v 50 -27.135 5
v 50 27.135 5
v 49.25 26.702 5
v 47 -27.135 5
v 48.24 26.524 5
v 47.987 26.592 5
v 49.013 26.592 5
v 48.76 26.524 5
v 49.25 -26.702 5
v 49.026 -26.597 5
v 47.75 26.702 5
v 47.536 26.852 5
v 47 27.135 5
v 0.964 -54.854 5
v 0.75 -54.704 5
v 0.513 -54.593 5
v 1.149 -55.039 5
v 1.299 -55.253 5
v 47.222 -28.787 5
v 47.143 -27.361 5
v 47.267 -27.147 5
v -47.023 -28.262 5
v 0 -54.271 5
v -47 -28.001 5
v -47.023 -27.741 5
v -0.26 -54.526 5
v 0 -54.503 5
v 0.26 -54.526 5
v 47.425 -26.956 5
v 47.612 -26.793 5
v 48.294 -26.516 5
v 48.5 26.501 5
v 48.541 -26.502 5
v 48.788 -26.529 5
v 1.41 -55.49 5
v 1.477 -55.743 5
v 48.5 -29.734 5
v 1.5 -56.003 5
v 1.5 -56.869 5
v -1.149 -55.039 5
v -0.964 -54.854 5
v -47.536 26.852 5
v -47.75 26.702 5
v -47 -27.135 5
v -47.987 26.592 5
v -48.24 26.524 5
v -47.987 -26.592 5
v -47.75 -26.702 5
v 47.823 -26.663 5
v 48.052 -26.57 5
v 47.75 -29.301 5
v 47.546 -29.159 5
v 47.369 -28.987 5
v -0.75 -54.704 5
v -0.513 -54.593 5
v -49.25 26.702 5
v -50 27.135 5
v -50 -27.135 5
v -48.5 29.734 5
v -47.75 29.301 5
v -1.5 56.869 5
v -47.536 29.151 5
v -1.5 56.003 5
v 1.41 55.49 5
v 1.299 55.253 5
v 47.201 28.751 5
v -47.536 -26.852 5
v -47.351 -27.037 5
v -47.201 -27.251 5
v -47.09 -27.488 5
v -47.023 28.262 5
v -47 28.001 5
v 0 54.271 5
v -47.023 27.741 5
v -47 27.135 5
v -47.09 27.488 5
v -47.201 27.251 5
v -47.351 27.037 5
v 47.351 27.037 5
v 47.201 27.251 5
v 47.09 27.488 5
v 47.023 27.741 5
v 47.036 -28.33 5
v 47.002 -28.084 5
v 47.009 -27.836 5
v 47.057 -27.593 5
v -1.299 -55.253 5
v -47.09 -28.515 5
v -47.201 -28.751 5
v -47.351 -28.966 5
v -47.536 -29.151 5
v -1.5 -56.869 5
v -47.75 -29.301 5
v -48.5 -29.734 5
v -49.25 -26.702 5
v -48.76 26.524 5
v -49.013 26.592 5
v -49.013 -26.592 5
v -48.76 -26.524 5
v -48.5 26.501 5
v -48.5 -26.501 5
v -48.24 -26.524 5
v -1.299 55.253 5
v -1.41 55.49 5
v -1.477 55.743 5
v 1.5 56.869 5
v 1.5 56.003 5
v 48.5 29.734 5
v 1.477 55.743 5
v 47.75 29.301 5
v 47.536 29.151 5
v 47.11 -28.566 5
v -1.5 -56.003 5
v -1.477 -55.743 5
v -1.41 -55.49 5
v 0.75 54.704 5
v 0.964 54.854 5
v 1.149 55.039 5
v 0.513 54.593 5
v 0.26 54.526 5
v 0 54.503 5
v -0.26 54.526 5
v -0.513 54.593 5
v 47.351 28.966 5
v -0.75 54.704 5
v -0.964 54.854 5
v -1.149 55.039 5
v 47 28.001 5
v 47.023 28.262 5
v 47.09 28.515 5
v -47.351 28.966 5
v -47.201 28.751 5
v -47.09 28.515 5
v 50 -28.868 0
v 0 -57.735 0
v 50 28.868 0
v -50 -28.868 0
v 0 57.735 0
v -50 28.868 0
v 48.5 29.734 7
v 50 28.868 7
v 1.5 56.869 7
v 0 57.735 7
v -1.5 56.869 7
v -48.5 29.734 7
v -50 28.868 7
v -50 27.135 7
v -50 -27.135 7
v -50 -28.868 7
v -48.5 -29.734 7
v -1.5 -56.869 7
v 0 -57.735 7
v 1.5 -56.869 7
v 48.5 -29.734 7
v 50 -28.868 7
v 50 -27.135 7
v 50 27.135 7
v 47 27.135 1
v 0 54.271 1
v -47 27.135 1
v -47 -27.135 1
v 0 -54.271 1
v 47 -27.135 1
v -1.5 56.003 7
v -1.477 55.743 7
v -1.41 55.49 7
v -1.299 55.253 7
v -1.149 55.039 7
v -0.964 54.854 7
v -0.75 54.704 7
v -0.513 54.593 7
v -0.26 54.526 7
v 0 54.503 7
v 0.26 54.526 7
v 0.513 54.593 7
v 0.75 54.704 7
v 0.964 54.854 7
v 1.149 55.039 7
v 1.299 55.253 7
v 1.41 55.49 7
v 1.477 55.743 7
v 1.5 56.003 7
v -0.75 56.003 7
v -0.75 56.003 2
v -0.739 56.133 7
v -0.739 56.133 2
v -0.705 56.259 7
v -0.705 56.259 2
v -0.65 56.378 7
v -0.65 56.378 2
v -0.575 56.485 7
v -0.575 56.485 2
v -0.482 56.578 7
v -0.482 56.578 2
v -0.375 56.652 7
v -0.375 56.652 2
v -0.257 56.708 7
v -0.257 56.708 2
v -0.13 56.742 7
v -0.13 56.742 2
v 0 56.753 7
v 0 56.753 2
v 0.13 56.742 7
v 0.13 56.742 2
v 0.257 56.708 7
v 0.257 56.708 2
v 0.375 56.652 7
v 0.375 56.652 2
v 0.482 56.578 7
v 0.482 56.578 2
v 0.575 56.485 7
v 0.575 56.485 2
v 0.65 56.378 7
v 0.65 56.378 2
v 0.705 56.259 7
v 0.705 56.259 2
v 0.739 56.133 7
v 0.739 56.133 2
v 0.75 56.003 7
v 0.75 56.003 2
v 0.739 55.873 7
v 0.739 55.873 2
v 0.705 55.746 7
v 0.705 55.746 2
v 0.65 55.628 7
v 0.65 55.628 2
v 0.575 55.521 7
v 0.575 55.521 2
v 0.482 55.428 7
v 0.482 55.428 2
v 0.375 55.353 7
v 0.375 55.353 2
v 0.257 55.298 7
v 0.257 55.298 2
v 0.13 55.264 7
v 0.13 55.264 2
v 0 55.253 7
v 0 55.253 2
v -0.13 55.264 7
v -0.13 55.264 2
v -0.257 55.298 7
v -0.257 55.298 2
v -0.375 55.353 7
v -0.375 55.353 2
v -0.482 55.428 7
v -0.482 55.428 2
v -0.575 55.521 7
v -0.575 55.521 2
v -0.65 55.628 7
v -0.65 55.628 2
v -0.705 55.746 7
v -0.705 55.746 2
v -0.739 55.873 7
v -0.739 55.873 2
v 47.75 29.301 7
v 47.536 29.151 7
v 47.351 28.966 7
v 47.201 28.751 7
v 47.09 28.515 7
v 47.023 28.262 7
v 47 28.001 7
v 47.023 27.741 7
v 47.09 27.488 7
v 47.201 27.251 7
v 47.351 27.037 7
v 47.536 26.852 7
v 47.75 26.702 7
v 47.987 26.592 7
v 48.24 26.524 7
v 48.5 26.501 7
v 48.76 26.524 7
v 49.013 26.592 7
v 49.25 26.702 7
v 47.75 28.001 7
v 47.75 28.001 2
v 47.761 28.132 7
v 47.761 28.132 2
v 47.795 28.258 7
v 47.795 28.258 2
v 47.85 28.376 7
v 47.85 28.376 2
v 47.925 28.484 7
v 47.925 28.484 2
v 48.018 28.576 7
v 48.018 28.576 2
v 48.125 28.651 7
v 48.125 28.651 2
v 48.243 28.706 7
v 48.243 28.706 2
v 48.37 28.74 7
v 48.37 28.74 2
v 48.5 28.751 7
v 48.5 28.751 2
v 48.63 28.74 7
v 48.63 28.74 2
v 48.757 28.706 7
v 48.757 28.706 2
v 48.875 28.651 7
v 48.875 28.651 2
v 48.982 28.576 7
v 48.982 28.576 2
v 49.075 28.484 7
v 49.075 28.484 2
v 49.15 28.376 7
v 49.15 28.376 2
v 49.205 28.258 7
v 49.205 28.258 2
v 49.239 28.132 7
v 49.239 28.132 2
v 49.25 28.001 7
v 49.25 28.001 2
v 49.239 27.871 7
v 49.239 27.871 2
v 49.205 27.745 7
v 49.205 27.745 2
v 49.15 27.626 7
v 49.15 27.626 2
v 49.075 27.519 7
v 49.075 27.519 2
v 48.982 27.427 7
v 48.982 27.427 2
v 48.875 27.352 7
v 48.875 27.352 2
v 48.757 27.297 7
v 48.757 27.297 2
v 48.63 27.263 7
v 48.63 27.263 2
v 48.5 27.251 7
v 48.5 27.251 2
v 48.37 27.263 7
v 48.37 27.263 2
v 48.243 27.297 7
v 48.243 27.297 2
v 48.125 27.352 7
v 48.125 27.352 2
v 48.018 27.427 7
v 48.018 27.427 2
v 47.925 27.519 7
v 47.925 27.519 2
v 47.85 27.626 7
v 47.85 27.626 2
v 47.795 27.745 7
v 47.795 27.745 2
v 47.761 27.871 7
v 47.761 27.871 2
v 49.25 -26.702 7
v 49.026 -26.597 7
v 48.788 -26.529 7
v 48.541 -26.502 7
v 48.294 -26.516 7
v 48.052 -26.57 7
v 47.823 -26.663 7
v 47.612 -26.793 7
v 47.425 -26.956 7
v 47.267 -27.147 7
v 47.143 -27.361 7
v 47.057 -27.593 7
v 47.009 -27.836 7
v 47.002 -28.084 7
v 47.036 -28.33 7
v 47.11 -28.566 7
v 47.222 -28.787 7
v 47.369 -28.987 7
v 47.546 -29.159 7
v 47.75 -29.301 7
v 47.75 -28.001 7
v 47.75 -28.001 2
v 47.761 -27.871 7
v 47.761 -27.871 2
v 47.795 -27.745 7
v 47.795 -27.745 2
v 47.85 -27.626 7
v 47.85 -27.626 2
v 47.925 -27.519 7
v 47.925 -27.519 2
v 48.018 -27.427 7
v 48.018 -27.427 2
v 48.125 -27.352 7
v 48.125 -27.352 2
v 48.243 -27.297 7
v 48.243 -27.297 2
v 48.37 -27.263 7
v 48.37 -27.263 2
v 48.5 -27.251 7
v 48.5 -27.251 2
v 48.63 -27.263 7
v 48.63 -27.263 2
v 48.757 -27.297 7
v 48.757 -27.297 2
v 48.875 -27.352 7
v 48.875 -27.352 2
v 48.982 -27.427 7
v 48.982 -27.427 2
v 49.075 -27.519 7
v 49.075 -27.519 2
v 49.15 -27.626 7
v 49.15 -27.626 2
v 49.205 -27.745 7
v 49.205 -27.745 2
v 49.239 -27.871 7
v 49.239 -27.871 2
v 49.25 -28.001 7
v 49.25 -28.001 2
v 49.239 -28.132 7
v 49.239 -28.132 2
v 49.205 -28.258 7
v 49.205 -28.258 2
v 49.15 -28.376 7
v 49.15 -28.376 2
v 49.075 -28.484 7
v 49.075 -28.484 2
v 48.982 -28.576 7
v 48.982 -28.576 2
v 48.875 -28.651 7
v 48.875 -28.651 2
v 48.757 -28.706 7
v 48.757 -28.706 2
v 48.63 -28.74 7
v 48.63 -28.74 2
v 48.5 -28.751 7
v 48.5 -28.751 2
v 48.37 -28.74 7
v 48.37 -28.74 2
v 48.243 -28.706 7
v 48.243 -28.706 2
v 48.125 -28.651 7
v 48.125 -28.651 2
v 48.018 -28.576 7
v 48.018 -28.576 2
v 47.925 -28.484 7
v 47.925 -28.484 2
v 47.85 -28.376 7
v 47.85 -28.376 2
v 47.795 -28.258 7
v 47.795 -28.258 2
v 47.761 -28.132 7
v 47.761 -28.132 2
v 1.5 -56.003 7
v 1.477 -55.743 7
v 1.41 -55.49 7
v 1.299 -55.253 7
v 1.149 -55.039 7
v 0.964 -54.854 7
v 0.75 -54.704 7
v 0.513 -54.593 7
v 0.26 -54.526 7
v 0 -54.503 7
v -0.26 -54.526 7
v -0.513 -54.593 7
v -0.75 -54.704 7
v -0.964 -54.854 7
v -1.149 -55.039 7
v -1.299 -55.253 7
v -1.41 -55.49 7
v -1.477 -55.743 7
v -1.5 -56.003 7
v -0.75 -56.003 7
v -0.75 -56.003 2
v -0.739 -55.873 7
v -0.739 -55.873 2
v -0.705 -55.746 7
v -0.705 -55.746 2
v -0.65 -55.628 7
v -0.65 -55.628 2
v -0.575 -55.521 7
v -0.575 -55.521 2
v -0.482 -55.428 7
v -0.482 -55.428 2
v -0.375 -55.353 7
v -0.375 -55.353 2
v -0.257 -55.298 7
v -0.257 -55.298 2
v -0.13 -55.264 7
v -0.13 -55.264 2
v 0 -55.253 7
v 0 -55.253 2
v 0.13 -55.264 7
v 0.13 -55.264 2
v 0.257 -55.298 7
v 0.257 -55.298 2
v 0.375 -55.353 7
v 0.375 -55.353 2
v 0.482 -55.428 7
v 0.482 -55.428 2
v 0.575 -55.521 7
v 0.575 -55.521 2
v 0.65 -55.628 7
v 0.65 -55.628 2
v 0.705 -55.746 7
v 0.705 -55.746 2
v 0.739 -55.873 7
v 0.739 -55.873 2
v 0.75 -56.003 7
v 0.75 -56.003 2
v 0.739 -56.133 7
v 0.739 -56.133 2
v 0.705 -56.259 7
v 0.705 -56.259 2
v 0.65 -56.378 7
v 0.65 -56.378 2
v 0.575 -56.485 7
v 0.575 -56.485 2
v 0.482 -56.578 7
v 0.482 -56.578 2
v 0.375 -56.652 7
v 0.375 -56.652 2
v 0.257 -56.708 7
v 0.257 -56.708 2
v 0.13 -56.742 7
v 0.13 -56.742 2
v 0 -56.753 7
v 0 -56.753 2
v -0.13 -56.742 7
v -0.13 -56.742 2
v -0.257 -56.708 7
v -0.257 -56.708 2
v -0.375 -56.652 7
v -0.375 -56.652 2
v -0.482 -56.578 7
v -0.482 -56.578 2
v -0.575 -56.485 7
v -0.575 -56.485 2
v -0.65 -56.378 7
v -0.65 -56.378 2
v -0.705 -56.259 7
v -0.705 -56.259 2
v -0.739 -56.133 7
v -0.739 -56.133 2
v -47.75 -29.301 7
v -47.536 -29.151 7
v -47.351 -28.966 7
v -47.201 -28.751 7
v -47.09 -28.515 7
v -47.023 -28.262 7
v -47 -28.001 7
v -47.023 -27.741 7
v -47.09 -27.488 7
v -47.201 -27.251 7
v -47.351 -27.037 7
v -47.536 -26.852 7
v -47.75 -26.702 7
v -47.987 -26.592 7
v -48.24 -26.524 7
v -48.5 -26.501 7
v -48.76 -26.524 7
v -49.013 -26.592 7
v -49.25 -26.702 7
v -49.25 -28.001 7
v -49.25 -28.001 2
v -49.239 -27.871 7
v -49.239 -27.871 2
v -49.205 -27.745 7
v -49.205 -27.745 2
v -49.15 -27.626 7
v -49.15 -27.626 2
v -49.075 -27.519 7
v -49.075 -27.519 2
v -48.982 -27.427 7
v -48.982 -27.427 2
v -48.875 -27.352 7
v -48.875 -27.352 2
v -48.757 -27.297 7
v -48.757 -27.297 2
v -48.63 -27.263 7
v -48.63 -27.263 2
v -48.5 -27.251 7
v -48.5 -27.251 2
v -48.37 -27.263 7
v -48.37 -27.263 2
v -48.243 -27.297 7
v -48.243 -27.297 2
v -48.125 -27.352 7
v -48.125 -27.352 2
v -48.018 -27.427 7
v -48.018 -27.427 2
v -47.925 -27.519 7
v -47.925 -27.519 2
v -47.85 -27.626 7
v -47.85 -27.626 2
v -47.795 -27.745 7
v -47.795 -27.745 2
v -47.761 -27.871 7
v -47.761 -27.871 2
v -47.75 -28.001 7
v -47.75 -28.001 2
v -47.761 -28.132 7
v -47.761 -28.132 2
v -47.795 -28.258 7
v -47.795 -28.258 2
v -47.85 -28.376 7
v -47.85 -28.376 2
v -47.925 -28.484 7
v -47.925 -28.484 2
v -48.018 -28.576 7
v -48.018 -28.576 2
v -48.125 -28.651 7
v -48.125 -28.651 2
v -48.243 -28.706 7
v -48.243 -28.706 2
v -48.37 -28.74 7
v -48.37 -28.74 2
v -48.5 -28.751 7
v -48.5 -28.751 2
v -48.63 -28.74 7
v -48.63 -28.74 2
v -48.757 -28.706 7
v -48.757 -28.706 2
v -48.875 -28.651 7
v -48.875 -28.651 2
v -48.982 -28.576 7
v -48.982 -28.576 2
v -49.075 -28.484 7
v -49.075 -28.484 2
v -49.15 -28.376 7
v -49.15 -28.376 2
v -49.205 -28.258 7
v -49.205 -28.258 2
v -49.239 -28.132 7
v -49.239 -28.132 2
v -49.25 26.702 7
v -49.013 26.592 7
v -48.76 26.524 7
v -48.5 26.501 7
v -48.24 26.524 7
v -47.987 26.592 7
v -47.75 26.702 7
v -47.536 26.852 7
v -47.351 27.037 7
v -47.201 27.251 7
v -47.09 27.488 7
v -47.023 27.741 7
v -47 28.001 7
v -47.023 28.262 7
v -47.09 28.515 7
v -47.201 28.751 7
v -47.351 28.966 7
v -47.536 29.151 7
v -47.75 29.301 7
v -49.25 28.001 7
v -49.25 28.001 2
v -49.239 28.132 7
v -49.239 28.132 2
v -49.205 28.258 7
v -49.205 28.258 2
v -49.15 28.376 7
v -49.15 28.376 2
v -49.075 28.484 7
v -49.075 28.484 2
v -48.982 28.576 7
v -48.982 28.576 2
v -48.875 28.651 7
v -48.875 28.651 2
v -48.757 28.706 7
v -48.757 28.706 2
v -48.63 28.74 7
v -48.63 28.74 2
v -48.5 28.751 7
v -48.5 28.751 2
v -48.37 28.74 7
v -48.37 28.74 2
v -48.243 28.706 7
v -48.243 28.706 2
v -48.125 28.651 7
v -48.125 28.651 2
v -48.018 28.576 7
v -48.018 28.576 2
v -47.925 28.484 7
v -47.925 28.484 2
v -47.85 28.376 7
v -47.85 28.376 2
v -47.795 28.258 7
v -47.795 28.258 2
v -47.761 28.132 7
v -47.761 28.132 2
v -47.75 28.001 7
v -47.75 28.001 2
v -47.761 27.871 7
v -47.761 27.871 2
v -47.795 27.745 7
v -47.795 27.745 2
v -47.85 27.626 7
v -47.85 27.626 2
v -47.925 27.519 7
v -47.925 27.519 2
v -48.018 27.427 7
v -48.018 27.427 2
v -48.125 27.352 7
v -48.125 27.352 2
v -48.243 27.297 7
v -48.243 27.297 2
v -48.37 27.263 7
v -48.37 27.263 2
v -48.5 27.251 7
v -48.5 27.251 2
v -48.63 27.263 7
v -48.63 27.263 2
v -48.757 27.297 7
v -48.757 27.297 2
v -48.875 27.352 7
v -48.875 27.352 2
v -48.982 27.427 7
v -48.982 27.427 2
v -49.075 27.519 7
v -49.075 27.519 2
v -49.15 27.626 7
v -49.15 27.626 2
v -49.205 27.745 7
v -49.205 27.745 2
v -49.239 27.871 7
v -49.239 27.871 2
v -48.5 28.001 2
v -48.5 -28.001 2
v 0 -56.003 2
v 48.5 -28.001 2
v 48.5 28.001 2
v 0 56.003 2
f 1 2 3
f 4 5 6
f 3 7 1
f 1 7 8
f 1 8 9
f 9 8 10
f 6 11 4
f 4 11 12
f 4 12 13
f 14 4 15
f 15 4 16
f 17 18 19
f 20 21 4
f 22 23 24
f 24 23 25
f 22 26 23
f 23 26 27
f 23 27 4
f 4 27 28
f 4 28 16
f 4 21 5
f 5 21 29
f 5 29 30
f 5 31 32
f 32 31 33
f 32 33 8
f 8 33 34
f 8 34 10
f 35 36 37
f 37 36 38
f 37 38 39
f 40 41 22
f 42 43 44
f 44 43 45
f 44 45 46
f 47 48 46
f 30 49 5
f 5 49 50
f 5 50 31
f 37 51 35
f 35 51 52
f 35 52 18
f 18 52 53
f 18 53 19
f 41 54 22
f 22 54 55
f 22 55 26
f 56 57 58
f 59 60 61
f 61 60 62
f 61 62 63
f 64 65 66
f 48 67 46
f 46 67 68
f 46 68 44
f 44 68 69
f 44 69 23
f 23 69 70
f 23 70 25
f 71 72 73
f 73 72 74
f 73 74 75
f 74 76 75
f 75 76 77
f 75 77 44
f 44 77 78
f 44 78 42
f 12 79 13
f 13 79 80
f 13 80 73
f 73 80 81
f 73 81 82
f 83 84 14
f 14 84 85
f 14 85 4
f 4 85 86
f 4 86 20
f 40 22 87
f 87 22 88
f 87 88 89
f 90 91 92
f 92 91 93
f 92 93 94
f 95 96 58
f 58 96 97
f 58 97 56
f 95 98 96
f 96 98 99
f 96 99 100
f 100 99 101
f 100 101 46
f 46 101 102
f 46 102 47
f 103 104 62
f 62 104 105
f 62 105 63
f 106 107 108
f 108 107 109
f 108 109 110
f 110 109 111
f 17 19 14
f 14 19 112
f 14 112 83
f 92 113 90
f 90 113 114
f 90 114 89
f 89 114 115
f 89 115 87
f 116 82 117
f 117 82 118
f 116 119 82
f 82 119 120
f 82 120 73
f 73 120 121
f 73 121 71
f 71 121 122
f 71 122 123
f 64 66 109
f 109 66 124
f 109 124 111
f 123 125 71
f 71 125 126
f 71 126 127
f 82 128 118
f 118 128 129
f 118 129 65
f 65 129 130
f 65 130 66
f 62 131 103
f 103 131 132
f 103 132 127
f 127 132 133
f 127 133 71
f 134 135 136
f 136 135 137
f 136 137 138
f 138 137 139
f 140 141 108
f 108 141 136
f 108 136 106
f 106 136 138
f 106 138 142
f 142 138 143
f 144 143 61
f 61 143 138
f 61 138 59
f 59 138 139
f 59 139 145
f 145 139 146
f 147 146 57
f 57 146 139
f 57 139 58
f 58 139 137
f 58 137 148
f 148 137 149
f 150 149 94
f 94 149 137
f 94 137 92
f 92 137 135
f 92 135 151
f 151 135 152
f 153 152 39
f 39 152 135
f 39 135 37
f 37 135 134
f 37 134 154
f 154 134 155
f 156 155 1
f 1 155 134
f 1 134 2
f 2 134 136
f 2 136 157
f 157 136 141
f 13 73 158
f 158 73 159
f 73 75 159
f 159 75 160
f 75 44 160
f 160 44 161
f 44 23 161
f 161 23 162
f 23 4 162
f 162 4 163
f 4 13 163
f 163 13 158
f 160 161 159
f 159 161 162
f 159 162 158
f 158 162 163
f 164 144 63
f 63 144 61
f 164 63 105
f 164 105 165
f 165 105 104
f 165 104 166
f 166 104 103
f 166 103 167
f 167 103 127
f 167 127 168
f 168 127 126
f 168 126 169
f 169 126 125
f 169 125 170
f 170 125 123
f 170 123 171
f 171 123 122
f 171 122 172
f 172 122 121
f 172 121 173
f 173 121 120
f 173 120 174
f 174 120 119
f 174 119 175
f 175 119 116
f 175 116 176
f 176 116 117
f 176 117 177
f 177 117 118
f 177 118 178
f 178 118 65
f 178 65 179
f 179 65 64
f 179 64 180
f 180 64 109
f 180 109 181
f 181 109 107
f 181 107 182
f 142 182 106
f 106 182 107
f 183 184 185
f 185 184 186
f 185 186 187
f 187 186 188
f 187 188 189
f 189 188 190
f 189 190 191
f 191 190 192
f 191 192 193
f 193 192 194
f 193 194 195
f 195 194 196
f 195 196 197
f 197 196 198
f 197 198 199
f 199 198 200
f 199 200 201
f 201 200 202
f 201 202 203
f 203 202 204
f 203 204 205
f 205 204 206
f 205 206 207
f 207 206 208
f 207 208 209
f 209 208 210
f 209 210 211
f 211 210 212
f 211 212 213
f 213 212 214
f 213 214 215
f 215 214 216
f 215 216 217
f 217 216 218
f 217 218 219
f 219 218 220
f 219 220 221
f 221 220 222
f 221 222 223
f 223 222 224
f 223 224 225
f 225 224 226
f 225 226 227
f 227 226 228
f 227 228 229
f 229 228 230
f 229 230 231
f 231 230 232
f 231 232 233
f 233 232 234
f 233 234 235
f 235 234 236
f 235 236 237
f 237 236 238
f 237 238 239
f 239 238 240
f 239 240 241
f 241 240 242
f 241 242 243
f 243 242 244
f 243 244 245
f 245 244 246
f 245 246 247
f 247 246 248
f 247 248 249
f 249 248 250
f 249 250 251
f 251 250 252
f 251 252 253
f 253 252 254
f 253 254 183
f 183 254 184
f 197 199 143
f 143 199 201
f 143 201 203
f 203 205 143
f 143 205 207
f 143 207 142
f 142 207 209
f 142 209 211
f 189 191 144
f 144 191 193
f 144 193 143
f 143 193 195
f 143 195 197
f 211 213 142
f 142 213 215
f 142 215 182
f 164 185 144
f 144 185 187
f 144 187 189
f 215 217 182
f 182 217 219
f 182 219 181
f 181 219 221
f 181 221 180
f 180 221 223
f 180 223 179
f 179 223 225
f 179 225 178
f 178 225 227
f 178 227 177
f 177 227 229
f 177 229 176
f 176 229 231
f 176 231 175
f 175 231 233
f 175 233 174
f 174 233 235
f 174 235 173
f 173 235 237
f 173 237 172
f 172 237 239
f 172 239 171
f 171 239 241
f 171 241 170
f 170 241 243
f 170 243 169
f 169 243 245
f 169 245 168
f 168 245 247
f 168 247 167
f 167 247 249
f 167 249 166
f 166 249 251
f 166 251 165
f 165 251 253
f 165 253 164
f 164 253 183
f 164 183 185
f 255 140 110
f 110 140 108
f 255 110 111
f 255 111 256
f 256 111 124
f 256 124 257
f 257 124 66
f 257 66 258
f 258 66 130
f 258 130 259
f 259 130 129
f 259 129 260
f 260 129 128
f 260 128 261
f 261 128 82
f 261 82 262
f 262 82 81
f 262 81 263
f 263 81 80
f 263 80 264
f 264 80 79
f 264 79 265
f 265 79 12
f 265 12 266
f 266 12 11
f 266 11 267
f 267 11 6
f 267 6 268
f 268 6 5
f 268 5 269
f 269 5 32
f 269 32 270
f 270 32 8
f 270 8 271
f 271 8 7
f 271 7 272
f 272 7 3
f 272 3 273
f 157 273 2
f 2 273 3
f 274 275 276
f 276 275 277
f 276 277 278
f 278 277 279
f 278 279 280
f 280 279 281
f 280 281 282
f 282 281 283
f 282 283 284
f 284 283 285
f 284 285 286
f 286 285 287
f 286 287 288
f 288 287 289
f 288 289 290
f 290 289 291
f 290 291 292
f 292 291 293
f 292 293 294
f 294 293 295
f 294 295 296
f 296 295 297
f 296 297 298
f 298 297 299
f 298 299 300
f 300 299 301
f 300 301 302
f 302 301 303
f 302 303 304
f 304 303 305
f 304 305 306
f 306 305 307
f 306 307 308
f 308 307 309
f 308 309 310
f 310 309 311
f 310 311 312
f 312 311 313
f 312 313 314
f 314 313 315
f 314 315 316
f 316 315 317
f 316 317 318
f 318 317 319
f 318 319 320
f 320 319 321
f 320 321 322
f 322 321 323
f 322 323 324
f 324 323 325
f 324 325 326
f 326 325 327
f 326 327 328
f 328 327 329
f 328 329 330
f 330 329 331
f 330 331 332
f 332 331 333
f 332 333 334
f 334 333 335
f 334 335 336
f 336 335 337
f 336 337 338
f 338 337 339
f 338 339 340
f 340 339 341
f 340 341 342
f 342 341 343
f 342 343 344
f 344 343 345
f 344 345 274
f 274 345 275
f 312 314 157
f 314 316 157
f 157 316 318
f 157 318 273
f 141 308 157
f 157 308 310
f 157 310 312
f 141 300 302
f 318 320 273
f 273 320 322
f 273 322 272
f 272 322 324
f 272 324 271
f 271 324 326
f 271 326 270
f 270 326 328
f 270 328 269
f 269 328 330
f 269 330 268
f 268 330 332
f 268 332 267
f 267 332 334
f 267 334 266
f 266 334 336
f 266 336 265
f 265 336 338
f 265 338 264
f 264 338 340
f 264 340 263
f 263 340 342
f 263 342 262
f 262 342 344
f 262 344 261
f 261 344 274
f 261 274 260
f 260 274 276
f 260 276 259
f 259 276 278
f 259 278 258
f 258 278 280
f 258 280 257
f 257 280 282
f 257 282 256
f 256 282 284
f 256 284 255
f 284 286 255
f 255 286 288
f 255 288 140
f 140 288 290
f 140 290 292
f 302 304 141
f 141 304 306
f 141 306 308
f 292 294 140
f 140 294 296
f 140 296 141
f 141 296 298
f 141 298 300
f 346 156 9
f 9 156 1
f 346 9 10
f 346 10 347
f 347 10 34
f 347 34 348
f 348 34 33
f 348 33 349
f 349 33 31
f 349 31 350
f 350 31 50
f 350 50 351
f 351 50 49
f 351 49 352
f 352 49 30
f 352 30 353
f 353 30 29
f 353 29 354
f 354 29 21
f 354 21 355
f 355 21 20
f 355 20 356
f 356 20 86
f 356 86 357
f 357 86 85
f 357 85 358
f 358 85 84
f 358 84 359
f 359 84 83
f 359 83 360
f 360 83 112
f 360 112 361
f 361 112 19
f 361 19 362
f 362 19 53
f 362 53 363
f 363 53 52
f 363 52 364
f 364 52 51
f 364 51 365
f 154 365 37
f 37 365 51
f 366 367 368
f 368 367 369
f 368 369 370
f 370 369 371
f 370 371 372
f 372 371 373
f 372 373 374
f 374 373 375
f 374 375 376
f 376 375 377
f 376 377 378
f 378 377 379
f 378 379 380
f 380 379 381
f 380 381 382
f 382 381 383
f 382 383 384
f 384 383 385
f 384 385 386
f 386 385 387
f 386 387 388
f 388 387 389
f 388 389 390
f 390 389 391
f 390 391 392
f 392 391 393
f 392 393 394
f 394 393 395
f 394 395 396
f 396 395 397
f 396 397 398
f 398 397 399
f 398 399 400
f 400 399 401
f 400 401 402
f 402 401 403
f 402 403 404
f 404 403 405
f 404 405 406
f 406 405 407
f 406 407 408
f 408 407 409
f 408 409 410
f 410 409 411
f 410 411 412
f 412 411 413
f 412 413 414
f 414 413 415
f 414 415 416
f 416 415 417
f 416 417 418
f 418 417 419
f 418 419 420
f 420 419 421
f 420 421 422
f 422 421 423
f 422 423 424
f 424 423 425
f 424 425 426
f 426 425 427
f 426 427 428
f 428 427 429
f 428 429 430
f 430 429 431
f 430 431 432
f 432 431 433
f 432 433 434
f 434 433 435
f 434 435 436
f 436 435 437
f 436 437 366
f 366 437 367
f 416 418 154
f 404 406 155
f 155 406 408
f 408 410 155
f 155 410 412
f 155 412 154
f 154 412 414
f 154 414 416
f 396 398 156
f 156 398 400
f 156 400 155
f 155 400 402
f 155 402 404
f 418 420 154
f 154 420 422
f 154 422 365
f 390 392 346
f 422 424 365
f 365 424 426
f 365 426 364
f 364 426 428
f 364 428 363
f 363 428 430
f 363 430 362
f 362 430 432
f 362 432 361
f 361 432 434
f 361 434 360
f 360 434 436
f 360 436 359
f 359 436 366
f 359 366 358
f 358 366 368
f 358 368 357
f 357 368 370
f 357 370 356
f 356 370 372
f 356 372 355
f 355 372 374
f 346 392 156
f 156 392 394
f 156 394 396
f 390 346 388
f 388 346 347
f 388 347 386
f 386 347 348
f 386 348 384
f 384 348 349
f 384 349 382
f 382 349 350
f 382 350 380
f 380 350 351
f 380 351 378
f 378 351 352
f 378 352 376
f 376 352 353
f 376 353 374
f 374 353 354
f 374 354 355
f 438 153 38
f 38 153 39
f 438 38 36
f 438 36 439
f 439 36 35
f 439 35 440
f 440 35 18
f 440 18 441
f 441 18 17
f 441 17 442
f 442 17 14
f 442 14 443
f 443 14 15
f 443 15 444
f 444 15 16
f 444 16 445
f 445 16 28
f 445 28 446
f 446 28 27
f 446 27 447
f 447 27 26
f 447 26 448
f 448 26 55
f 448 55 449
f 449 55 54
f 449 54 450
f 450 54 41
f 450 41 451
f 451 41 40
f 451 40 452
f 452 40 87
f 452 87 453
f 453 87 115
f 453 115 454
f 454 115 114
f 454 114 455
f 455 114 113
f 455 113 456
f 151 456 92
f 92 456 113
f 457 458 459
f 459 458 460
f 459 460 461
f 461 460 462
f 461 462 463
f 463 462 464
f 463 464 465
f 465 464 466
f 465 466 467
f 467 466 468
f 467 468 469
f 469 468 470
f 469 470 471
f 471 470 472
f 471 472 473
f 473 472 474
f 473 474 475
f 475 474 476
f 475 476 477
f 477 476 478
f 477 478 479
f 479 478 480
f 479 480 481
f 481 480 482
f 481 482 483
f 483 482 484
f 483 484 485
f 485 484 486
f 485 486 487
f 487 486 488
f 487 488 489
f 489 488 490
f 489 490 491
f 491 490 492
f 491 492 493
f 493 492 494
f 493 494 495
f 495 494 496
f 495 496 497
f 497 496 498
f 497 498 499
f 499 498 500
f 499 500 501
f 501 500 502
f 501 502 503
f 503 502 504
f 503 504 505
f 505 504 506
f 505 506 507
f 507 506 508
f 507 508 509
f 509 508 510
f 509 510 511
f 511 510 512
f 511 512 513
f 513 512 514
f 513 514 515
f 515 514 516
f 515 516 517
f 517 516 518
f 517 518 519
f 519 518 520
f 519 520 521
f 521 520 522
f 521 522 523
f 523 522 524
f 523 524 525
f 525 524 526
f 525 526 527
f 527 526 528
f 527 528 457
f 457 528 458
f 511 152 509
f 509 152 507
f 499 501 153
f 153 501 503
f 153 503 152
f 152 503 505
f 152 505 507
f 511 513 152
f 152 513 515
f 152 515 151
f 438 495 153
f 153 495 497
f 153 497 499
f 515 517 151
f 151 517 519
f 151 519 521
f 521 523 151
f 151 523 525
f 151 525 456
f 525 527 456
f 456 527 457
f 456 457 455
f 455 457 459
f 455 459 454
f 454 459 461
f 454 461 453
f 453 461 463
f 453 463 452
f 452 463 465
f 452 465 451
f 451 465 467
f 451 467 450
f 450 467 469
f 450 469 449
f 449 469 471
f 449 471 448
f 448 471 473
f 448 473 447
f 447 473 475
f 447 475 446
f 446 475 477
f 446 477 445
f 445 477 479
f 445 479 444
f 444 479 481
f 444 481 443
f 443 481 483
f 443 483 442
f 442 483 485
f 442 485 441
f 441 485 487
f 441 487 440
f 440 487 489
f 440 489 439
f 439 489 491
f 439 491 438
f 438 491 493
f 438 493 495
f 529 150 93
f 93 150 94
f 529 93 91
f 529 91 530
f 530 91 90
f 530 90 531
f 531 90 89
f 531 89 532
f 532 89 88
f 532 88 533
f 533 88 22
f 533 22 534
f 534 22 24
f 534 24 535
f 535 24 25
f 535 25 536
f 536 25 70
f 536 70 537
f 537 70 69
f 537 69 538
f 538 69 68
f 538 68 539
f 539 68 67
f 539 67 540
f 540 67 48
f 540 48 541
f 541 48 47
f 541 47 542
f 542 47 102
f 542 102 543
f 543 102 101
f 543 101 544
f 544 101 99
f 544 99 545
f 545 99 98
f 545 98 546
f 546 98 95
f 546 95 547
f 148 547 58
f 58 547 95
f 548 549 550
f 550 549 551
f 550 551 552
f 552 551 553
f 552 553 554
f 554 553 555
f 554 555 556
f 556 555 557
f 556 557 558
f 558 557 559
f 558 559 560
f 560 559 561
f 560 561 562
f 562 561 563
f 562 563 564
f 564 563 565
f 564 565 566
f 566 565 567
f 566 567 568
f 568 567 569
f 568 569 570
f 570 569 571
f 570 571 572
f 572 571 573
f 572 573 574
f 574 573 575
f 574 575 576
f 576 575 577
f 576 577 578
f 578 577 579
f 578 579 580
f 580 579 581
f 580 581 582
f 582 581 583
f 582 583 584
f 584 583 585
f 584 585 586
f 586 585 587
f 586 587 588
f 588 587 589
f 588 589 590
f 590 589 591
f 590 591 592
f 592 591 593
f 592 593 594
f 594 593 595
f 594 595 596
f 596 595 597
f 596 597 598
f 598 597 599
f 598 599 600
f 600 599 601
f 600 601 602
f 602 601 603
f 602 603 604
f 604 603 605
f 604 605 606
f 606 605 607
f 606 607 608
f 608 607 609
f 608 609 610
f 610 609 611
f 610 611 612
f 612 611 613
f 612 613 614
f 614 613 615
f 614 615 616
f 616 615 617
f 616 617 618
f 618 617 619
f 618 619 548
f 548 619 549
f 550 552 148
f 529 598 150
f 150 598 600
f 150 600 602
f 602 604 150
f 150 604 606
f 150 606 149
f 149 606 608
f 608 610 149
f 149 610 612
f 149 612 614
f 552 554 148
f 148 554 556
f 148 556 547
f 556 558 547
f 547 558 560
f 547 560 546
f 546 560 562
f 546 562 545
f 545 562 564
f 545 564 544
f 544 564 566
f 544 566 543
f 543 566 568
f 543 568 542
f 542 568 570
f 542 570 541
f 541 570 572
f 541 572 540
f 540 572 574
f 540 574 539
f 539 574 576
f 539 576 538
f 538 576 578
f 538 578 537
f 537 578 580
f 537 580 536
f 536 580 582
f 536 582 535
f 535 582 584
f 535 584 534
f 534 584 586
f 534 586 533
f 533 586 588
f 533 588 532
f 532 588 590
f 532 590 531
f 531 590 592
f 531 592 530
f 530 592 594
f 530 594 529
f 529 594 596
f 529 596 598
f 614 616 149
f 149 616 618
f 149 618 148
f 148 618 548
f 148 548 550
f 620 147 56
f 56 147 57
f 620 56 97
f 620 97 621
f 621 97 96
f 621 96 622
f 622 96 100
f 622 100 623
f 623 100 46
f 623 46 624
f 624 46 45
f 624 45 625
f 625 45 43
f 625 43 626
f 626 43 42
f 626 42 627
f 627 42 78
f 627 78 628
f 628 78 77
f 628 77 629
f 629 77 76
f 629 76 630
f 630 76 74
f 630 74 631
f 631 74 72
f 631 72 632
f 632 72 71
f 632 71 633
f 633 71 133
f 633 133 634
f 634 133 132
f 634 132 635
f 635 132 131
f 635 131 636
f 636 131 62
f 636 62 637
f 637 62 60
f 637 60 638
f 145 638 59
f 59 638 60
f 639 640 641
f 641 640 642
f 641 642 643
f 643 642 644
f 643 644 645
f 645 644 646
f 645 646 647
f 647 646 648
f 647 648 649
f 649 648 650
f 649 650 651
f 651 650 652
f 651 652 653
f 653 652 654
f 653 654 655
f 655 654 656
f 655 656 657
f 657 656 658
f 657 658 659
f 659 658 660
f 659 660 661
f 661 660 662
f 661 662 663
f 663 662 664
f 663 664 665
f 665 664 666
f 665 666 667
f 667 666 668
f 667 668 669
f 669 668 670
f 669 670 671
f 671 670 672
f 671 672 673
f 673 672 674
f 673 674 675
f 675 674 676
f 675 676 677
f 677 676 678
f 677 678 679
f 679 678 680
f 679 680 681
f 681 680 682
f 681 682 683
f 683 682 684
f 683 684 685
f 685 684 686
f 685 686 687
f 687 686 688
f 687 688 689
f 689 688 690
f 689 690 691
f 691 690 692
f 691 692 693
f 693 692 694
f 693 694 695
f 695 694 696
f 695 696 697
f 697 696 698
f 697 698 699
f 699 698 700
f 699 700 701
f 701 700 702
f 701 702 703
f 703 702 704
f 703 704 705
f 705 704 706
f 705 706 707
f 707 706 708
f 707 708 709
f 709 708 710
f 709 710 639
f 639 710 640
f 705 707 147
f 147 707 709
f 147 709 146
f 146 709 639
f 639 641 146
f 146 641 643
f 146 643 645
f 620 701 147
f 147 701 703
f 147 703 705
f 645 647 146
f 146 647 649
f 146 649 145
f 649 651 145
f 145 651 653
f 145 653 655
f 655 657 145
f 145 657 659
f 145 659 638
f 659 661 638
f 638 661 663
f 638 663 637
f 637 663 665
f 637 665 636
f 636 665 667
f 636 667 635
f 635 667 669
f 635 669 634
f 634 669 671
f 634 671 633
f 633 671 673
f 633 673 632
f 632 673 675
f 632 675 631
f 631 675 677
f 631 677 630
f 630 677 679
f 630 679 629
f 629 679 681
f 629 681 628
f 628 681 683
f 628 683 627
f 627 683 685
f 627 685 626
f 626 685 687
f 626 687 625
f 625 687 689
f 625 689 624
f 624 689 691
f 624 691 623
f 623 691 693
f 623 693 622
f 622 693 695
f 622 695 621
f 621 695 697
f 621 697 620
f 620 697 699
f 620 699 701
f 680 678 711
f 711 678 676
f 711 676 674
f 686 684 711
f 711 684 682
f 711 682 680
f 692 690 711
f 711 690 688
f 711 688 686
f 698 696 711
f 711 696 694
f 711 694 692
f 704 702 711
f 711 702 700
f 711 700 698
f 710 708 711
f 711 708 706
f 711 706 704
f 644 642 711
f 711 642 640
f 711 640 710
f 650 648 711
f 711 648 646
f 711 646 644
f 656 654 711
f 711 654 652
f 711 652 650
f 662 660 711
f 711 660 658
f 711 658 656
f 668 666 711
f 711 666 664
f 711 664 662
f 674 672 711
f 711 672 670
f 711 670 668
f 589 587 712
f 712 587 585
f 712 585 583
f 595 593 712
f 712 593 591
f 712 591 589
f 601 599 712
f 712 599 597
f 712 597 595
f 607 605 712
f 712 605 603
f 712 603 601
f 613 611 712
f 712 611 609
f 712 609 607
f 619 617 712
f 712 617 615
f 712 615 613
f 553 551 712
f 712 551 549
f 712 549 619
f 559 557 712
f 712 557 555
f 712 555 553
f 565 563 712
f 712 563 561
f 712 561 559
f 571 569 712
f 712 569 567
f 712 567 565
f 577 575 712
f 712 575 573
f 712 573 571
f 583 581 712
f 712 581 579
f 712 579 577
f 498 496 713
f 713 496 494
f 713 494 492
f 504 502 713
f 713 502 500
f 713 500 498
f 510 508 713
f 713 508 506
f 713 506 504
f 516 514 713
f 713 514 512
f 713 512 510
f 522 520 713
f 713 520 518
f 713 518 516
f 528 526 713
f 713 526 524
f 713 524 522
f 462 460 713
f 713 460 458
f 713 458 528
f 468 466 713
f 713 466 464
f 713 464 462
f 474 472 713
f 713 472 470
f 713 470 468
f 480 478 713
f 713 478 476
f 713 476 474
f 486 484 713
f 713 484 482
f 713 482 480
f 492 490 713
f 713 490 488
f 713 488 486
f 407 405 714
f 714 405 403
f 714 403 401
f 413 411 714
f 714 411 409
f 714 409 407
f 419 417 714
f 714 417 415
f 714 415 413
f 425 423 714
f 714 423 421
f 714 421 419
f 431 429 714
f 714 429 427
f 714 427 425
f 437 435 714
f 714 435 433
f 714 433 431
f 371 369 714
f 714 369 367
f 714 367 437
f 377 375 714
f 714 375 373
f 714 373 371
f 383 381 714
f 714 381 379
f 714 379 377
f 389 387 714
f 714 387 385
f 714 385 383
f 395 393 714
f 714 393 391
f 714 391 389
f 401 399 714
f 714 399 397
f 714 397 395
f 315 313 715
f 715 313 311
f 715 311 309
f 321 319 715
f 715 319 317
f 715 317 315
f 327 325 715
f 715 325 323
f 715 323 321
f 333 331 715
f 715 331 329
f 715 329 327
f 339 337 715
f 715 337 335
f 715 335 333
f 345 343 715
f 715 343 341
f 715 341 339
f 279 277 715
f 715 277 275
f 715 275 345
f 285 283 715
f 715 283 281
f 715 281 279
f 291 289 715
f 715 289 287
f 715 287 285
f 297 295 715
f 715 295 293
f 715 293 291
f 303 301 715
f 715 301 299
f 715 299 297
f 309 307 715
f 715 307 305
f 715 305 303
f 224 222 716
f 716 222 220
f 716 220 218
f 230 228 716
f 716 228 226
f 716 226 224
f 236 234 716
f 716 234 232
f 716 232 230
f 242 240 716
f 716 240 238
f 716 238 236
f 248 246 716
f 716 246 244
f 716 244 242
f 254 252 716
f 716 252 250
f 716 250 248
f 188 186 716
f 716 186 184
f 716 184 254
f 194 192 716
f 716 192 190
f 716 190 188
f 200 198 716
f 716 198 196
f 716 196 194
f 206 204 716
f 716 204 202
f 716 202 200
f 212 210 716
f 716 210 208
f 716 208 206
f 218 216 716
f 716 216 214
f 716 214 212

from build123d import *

# Parameters (mm, degrees)
BOSS_EXTRUDE1_DEPTH = 5
BOSS_EXTRUDE2_DEPTH = 1
SKETCH3_R           = 0.75
BOSS_EXTRUDE3_DEPTH = 2
CUT_EXTRUDE1_START  = -3
SKETCH4_R           = 0.75
CUT_EXTRUDE1_DEPTH  = 3


with BuildPart() as part:
    # Sketch1 → Boss-Extrude1 (new body)
    with BuildSketch(Plane.XY):
        Polygon((0, 57.735026919), (-50, 28.867513459), (-50, -28.867513459), (0, -57.735026919), (50, -28.867513459), (50, 28.867513459), align=None)
        Polygon((0, 54.270925304), (-47, 27.135462652), (-47, -27.135462652), (0, -54.270925304), (47, -27.135462652), (47, 27.135462652), align=None, mode=Mode.SUBTRACT)
    extrude(amount=BOSS_EXTRUDE1_DEPTH)

    # Sketch2 → Boss-Extrude2 (add)
    with BuildSketch(Plane(origin=(0, 0, 0), x_dir=(-1, 0, 0), z_dir=(0, 0, -1))):
        Polygon((-47, -27.135462652), (-47, 27.135462652), (0, 54.270925304), (47, 27.135462652), (47, -27.135462652), (0, -54.270925304), align=None)
    extrude(amount=-BOSS_EXTRUDE2_DEPTH)

    # Sketch3 → Boss-Extrude3 (add)
    # profile 1 of 6: a face of its own
    with BuildSketch(Plane.XY.offset(5)):
        with BuildLine():
            Line((1.5, 56.002976111), (1.5, 56.869001515))
            Line((1.5, 56.869001515), (0, 57.735026919))
            Line((0, 57.735026919), (-1.5, 56.869001515))
            Line((-1.5, 56.869001515), (-1.5, 56.002976111))
            ThreePointArc((-1.5, 56.002976111), (0, 54.502976111), (1.5, 56.002976111))
        make_face()
        with Locations((0, 56.002976111)):
            Circle(SKETCH3_R, mode=Mode.SUBTRACT)
    # profile 2 of 6: a face of its own
    with BuildSketch(Plane.XY.offset(5)):
        with BuildLine():
            Line((50, 27.135462652), (50, 28.867513459))
            Line((50, 28.867513459), (48.5, 29.733538863))
            Line((48.5, 29.733538863), (47.75, 29.300526161))
            ThreePointArc((47.75, 29.300526161), (47.200961894, 27.251488056), (49.25, 26.70244995))
            Line((49.25, 26.70244995), (50, 27.135462652))
        make_face()
        with Locations((48.5, 28.001488056)):
            Circle(SKETCH3_R, mode=Mode.SUBTRACT)
    # profile 3 of 6: a face of its own
    with BuildSketch(Plane.XY.offset(5)):
        with BuildLine():
            Line((50, -28.867513459), (50, -27.135462652))
            Line((50, -27.135462652), (49.25, -26.70244995))
            ThreePointArc((49.25, -26.70244995), (47.200961894, -27.251488056), (47.75, -29.300526161))
            Line((47.75, -29.300526161), (48.5, -29.733538863))
            Line((48.5, -29.733538863), (50, -28.867513459))
        make_face()
        with Locations((48.5, -28.001488056)):
            Circle(SKETCH3_R, mode=Mode.SUBTRACT)
    # profile 4 of 6: a face of its own
    with BuildSketch(Plane.XY.offset(5)):
        with BuildLine():
            Line((0, -57.735026919), (1.5, -56.869001515))
            Line((1.5, -56.869001515), (1.5, -56.002976111))
            ThreePointArc((1.5, -56.002976111), (0, -54.502976111), (-1.5, -56.002976111))
            Line((-1.5, -56.002976111), (-1.5, -56.869001515))
            Line((-1.5, -56.869001515), (0, -57.735026919))
        make_face()
        with Locations((0, -56.002976111)):
            Circle(SKETCH3_R, mode=Mode.SUBTRACT)
    # profile 5 of 6: a face of its own
    with BuildSketch(Plane.XY.offset(5)):
        with BuildLine():
            Line((-50, -28.867513459), (-48.5, -29.733538863))
            Line((-48.5, -29.733538863), (-47.75, -29.300526161))
            ThreePointArc((-47.75, -29.300526161), (-47.200961894, -27.251488056), (-49.25, -26.70244995))
            Line((-49.25, -26.70244995), (-50, -27.135462652))
            Line((-50, -27.135462652), (-50, -28.867513459))
        make_face()
        with Locations((-48.5, -28.001488056)):
            Circle(SKETCH3_R, mode=Mode.SUBTRACT)
    # profile 6 of 6: a face of its own
    with BuildSketch(Plane.XY.offset(5)):
        with BuildLine():
            Line((-47.75, 29.300526161), (-48.5, 29.733538863))
            Line((-48.5, 29.733538863), (-50, 28.867513459))
            Line((-50, 28.867513459), (-50, 27.135462652))
            Line((-50, 27.135462652), (-49.25, 26.70244995))
            ThreePointArc((-49.25, 26.70244995), (-47.200961894, 27.251488056), (-47.75, 29.300526161))
        make_face()
        with Locations((-48.5, 28.001488056)):
            Circle(SKETCH3_R, mode=Mode.SUBTRACT)
    extrude(amount=BOSS_EXTRUDE3_DEPTH)

    # Sketch4 → Cut-Extrude1 (cut)
    with BuildSketch(Plane.XY.offset(5).offset(CUT_EXTRUDE1_START)):
        with Locations((0, 56.002976111)):
            Circle(SKETCH4_R)
        with Locations((-48.5, 28.001488056)):
            Circle(SKETCH4_R)
        with Locations((-48.5, -28.001488056)):
            Circle(SKETCH4_R)
        with Locations((0, -56.002976111)):
            Circle(SKETCH4_R)
        with Locations((48.5, -28.001488056)):
            Circle(SKETCH4_R)
        with Locations((48.5, 28.001488056)):
            Circle(SKETCH4_R)
    extrude(amount=CUT_EXTRUDE1_DEPTH, mode=Mode.SUBTRACT)


solid = part.part
